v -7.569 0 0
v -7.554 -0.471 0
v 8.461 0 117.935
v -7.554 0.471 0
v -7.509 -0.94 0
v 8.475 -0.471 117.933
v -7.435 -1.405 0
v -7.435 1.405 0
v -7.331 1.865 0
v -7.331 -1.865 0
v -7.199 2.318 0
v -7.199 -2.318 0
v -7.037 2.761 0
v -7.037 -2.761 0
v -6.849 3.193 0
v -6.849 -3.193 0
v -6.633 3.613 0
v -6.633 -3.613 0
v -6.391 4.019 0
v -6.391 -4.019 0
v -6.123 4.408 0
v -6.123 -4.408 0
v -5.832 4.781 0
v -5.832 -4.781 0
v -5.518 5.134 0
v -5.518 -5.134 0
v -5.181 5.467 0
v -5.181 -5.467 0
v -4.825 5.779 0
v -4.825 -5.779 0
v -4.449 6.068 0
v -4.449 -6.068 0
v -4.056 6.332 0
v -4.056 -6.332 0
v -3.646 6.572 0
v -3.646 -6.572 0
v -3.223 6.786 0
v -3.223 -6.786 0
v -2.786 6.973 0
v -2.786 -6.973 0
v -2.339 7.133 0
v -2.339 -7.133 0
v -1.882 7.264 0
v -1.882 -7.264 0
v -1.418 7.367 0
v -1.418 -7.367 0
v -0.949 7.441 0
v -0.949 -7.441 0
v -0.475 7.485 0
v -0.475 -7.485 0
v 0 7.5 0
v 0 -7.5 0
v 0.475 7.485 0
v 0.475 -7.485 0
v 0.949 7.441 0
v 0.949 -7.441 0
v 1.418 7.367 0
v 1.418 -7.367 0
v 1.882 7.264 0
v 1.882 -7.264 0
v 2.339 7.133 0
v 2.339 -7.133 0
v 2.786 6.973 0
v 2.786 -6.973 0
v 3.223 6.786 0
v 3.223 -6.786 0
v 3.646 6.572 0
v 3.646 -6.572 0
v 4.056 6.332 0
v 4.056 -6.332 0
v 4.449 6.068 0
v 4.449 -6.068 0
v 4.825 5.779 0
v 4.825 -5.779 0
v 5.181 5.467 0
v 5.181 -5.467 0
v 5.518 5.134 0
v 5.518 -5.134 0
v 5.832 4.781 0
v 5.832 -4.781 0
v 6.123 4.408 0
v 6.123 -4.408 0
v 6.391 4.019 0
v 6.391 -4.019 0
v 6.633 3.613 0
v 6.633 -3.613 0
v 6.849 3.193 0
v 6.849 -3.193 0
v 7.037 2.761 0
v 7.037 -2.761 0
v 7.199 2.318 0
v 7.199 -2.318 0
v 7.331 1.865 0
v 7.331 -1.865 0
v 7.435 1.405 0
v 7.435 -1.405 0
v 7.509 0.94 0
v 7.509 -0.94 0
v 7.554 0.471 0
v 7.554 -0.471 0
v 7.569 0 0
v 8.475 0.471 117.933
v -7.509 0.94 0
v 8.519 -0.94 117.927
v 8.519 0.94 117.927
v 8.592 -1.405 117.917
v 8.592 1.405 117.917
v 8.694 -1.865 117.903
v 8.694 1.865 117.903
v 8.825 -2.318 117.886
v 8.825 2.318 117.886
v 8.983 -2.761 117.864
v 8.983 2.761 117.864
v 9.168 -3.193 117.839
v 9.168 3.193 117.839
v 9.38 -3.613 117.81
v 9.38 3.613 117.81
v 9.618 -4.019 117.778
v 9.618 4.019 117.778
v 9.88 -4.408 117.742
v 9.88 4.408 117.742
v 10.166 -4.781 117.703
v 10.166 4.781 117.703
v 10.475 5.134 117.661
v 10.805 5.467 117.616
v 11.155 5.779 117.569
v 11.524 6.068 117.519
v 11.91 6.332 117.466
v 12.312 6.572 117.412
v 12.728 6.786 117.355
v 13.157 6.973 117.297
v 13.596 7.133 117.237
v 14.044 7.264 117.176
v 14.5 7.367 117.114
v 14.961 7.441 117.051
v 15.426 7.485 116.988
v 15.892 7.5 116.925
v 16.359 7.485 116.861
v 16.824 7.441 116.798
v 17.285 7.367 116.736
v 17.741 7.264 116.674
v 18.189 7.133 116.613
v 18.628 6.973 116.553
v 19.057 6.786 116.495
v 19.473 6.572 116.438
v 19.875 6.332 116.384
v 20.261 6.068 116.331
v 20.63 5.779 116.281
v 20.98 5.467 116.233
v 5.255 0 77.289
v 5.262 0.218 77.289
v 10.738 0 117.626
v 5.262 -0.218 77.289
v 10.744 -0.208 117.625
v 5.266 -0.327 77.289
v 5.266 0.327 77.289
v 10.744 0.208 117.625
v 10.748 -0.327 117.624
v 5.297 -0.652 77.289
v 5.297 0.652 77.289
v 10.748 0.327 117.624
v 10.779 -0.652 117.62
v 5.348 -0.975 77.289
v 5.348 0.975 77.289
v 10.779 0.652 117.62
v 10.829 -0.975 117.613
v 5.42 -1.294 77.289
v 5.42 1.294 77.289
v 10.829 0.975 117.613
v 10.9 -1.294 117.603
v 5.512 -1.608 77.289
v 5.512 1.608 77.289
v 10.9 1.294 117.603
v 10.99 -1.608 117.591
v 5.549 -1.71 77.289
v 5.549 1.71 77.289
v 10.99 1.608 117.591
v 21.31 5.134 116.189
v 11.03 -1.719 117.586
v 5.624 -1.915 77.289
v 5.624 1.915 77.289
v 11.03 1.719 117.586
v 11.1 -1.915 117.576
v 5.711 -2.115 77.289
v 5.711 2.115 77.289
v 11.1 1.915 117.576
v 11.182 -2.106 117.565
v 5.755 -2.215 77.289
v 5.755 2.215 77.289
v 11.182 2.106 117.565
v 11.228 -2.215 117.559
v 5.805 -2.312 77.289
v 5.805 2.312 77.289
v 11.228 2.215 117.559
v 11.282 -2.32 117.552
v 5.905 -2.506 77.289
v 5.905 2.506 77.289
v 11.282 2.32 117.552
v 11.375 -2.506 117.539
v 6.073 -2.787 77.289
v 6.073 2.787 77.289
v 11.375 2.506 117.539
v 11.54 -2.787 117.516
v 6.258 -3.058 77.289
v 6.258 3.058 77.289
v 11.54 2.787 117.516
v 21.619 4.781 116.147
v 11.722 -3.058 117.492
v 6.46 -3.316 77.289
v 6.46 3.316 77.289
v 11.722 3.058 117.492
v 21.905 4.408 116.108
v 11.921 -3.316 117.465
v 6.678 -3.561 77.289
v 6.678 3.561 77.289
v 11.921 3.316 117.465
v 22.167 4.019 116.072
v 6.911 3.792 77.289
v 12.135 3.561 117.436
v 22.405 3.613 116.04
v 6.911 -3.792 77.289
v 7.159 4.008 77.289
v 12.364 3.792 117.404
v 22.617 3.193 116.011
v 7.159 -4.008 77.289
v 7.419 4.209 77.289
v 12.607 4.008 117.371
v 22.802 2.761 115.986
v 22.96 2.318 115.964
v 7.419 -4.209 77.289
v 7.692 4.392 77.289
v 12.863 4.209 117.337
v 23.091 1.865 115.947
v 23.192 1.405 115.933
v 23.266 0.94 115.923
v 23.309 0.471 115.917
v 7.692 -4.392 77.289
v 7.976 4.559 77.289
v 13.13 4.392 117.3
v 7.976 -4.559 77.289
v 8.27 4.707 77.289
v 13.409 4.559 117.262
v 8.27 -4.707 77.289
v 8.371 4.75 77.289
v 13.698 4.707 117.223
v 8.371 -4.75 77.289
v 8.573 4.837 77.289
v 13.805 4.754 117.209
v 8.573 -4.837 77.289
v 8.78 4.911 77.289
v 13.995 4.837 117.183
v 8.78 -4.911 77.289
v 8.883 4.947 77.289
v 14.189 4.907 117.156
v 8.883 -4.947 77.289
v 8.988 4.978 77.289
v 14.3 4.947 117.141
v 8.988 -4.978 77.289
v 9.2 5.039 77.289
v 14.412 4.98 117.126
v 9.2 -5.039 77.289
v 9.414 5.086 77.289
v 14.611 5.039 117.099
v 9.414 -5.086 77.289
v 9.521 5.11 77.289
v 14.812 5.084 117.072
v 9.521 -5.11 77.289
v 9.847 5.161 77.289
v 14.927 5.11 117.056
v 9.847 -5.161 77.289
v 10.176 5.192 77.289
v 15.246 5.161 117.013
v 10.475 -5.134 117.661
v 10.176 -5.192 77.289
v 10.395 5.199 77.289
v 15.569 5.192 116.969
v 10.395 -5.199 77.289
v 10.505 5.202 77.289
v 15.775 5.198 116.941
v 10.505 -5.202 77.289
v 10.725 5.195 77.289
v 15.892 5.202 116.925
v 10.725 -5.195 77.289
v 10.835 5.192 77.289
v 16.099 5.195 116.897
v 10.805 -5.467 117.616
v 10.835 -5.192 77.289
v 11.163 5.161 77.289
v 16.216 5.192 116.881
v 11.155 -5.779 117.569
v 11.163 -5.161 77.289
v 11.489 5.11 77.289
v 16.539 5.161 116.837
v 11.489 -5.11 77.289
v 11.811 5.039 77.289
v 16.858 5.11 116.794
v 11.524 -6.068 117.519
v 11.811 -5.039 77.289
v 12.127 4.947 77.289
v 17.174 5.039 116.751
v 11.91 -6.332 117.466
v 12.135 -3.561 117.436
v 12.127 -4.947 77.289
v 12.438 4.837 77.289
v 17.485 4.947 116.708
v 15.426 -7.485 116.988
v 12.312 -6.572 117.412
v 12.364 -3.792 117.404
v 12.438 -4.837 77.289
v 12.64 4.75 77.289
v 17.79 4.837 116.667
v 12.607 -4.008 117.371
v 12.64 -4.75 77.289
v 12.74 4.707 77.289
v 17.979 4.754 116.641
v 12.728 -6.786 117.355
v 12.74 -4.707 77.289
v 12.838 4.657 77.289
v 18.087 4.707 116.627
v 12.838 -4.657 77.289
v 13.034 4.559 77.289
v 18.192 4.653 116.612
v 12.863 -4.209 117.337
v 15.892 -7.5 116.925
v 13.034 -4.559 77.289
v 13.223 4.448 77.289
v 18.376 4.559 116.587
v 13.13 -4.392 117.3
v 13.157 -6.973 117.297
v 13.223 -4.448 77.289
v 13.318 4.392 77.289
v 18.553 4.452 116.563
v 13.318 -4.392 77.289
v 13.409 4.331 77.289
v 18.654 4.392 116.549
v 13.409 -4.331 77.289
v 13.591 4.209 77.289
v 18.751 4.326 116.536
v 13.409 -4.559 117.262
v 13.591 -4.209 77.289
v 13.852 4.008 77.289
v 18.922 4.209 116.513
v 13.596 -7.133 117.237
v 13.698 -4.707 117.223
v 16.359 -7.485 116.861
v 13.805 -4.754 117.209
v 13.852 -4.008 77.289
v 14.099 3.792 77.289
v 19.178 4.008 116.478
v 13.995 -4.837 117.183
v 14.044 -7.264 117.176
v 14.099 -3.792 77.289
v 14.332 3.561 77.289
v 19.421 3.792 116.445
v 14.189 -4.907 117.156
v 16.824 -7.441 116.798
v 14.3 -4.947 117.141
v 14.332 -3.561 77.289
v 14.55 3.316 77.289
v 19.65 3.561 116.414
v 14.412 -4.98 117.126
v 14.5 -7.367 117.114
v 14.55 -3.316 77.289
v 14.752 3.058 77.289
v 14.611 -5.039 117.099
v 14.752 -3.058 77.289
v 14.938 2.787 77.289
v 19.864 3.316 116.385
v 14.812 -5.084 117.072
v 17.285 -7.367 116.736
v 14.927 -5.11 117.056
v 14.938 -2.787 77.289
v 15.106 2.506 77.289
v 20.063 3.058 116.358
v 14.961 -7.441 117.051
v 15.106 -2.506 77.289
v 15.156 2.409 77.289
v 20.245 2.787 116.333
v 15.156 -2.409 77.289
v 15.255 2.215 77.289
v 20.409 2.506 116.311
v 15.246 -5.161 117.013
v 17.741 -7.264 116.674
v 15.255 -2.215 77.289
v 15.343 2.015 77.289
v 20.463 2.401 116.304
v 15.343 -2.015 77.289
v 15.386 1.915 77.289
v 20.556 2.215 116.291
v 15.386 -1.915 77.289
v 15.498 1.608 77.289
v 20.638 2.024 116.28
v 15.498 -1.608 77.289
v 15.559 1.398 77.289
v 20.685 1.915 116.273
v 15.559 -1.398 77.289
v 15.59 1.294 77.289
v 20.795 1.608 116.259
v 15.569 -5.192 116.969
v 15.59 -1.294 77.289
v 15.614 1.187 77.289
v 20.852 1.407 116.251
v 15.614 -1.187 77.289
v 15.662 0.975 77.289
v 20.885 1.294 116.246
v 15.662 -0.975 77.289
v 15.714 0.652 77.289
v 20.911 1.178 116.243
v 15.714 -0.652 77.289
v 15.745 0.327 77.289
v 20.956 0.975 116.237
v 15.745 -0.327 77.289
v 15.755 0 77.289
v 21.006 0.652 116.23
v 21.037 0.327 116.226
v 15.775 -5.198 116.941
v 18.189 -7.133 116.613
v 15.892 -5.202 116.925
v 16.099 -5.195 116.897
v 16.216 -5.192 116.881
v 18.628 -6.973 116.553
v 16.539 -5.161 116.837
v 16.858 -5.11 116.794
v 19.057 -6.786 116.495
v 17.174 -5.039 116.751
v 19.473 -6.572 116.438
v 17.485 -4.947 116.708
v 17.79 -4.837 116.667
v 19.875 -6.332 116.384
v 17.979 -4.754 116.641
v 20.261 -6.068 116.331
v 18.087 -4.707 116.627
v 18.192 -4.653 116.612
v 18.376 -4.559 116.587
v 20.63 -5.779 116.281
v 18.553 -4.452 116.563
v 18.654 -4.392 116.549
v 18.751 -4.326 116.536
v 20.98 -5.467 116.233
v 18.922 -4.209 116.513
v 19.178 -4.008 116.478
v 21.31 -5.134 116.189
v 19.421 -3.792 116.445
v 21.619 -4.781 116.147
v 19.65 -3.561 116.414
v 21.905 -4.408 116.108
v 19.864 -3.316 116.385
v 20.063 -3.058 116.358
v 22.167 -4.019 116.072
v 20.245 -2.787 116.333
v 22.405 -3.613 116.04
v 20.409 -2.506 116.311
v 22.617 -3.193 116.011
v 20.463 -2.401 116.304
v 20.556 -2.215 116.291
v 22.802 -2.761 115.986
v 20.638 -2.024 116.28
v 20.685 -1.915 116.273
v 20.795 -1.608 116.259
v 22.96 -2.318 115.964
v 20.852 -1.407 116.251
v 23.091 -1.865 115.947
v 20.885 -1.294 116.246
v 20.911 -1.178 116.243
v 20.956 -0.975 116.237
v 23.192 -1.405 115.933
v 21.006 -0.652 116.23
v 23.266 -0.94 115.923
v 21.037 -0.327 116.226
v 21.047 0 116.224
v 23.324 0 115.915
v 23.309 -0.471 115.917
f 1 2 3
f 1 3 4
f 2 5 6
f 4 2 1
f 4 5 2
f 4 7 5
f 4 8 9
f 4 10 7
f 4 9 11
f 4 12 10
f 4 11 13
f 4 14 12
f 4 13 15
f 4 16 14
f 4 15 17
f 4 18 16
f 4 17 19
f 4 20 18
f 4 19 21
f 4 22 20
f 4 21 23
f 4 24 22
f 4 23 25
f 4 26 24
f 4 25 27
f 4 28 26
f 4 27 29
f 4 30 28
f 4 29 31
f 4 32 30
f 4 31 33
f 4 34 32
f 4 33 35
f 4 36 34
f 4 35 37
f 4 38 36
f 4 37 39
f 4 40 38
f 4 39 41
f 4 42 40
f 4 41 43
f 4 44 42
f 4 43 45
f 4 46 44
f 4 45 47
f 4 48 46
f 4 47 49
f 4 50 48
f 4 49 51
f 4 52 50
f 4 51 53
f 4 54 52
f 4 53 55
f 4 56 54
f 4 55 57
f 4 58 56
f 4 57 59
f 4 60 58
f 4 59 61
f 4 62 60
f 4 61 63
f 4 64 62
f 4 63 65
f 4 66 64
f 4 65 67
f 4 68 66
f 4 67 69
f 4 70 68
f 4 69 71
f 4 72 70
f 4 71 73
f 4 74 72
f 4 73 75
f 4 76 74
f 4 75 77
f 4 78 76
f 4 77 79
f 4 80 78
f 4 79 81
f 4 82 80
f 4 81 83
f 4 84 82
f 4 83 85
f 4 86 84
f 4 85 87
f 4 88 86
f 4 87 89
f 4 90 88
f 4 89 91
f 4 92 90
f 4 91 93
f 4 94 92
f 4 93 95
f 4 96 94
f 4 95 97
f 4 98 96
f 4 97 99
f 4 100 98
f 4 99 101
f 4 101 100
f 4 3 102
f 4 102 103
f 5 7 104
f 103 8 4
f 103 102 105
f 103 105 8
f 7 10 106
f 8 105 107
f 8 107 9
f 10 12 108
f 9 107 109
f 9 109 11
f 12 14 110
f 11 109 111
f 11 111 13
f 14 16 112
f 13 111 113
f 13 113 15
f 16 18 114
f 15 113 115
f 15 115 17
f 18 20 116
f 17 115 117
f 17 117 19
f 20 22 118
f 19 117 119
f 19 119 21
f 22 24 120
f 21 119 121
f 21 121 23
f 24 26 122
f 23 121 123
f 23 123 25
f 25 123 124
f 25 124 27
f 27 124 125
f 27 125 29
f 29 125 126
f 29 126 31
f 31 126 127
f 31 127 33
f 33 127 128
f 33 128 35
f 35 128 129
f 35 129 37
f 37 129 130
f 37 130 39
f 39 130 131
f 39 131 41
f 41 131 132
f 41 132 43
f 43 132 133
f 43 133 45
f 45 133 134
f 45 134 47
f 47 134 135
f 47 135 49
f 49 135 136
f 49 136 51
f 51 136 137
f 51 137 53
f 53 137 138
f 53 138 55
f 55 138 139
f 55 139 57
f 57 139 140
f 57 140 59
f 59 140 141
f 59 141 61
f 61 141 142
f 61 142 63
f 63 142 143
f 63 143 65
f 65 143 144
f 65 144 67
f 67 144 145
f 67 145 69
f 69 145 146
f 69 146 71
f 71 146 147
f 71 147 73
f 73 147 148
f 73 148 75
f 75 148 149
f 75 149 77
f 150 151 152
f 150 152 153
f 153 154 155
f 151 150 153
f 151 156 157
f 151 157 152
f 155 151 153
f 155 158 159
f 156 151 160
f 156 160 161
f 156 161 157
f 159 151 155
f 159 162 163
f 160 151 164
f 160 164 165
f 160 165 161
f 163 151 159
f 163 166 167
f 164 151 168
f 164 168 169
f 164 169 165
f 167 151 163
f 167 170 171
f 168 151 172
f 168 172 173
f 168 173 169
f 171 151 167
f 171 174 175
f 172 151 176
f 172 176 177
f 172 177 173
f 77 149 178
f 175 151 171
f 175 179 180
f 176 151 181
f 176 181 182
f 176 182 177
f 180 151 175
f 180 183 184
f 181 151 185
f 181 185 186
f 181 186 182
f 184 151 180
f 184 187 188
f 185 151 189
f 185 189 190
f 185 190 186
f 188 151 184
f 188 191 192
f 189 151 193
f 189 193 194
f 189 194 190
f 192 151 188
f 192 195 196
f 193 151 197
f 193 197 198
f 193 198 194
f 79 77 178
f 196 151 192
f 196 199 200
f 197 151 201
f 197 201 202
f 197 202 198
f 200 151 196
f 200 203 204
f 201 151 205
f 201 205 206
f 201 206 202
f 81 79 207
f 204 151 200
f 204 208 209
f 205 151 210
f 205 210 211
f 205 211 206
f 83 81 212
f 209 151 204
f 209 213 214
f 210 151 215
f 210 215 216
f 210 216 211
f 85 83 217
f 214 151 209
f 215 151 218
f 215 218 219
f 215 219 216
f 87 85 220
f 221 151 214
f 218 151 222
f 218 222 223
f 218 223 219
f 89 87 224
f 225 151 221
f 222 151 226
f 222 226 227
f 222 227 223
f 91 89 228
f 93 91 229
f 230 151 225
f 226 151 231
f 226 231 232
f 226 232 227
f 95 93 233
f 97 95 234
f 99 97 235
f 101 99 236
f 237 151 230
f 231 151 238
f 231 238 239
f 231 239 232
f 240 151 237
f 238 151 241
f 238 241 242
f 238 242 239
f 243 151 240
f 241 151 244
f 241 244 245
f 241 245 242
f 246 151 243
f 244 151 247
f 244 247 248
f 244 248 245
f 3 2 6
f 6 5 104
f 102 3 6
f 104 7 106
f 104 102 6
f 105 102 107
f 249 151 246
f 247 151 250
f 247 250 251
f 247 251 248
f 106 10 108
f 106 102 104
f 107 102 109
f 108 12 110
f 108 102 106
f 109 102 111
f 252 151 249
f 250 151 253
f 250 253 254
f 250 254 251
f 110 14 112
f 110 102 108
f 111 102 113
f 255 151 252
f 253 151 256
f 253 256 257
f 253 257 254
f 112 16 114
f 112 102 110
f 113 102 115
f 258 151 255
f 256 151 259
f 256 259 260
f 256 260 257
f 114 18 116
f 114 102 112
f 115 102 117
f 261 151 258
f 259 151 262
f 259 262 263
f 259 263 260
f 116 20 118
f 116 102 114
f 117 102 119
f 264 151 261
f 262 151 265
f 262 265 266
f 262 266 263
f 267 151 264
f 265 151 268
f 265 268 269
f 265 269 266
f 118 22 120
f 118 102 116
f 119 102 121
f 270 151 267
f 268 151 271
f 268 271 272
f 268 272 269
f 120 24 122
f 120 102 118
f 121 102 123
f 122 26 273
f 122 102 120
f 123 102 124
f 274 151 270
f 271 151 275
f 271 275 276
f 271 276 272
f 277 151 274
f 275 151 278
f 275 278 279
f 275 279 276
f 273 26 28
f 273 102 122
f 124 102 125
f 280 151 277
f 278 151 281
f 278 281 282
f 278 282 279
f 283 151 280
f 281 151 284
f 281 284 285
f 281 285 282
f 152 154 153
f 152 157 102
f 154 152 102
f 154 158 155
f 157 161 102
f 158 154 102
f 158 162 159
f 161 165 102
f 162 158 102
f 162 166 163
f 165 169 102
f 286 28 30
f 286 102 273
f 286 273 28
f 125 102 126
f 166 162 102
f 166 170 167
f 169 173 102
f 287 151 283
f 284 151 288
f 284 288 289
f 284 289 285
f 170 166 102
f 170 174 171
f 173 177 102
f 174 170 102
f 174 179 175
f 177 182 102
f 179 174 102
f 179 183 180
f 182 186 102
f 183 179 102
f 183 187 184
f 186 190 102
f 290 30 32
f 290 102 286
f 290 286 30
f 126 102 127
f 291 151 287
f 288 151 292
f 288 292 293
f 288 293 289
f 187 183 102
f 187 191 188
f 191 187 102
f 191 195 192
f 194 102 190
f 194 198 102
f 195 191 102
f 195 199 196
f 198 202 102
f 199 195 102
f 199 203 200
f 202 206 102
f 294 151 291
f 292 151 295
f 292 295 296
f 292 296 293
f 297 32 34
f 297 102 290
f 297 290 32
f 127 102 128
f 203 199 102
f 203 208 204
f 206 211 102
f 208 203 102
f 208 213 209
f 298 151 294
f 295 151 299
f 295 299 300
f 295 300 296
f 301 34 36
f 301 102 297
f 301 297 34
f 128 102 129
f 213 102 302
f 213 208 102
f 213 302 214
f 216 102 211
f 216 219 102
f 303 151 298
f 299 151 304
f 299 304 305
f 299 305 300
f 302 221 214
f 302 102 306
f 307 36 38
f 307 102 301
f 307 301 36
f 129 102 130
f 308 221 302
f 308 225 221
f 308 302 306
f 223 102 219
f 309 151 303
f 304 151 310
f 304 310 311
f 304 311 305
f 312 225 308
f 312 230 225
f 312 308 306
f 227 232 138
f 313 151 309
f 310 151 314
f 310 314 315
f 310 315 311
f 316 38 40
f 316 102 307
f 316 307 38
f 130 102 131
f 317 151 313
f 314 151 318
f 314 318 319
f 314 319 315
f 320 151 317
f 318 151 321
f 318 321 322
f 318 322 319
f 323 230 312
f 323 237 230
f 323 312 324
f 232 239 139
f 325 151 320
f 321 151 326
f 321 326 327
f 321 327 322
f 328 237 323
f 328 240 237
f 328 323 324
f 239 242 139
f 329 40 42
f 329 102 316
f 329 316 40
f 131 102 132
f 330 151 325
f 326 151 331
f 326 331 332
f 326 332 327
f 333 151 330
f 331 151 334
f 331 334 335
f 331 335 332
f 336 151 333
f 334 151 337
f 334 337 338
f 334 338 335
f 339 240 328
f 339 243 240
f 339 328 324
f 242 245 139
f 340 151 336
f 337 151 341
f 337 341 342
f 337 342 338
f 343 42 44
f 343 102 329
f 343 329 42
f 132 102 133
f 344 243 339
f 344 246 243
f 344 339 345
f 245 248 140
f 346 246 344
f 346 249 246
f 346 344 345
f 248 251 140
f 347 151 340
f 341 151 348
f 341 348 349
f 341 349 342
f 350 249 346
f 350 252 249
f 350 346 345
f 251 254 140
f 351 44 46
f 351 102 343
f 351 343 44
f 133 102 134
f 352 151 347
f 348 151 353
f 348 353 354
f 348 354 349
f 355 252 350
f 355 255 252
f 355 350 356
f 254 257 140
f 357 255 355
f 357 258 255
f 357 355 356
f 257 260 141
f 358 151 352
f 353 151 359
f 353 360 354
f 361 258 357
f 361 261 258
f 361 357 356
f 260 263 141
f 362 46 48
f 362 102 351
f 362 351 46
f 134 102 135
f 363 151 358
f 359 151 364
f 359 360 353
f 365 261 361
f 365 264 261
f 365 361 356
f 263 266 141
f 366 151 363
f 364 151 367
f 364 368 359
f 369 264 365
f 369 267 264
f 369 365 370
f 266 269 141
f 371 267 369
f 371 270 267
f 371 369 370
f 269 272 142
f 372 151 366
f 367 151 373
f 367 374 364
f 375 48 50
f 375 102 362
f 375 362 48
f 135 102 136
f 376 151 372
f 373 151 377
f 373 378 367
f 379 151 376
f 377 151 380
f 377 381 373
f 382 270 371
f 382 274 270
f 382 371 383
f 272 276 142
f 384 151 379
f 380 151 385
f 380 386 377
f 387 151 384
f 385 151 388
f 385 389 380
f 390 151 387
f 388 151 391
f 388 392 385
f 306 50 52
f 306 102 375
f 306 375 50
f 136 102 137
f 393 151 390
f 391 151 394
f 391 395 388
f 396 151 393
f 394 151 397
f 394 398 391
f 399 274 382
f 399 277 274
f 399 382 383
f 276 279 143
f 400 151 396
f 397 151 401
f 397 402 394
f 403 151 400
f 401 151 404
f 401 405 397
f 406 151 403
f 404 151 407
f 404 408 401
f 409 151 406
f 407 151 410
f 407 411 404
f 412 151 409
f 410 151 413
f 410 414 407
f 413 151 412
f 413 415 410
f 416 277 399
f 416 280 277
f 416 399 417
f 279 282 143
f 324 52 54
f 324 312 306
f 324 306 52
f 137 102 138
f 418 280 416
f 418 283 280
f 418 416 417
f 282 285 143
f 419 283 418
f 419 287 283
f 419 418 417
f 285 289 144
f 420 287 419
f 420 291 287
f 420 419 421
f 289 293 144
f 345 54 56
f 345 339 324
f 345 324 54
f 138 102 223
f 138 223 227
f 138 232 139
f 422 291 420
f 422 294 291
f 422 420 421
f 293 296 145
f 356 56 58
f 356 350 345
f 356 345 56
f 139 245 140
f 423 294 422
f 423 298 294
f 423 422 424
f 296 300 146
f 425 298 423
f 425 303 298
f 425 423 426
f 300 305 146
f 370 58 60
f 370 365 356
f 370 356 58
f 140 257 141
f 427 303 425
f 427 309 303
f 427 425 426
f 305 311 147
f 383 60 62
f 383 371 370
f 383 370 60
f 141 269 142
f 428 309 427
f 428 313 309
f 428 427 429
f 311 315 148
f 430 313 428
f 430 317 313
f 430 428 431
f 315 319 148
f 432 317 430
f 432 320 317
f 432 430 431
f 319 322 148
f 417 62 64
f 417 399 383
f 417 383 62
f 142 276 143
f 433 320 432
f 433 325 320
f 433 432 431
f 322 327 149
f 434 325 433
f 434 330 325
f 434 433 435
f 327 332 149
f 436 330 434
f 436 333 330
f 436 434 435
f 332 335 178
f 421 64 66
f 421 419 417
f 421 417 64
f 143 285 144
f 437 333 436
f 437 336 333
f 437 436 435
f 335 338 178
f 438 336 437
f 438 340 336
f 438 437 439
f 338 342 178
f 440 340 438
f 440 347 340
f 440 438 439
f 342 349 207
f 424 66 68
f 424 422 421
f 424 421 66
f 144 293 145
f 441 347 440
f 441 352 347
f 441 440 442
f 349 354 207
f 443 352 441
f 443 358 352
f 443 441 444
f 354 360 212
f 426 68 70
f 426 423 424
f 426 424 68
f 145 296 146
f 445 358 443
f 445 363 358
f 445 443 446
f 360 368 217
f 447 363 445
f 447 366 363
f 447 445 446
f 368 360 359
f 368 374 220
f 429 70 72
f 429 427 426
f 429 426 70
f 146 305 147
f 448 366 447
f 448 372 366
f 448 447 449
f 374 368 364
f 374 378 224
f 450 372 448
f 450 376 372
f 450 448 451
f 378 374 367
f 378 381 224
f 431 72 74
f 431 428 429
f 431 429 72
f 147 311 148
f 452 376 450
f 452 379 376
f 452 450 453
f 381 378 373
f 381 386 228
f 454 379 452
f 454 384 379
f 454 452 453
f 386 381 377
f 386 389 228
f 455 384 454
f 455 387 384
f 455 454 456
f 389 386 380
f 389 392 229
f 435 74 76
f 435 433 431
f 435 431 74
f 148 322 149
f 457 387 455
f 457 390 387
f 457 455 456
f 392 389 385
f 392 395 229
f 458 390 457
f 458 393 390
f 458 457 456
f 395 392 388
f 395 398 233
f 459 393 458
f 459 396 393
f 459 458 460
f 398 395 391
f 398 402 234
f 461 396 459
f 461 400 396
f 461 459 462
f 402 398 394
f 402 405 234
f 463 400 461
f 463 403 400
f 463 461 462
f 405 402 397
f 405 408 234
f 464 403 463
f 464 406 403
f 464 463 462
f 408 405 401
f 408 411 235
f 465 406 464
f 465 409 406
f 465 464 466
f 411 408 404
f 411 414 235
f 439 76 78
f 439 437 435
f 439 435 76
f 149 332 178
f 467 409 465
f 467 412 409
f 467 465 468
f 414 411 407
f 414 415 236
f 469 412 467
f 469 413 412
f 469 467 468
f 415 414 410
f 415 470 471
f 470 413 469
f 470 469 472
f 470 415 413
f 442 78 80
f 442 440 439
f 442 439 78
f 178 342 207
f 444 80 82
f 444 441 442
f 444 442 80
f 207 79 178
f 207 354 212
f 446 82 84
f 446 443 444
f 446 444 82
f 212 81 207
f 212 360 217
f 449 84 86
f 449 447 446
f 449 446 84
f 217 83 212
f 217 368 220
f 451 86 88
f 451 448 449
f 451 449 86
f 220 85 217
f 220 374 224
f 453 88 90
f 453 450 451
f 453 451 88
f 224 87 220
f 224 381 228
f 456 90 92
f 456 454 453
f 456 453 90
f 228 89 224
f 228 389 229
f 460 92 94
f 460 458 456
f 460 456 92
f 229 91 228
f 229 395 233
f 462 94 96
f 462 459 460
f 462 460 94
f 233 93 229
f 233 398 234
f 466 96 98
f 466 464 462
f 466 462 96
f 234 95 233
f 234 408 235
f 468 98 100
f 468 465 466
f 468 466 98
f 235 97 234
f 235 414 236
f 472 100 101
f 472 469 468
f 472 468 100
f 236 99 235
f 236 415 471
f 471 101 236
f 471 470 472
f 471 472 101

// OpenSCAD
zz=445.90;
xz=450;
xx=cos(asin(zz/xz))*xz;
dia=10.2;
bignum=max(zz,xz);

angle=90-asin(zz/xz);

$fn=100;

difference() {
  rotate(angle,[0,1,0]) translate([0,0,78]) difference() {
    translate([0,0,-80]) cylinder(h=120,d=15);
    scale([1.02,1.02,1.02]) rotate(-angle,[0,1,0]) leg();
  }
  translate([0,0,-bignum/2]) cube([bignum,bignum,bignum],center=true);
}

module leg() {
  difference() {
    translate([-xx,0,-zz]) rotate(angle,[0,1,0]) linear_extrude(xz*3) circle(d=dia);
    translate([0,0,-bignum/2]) cube([bignum,bignum,bignum],center=true);
    translate([0,0,bignum/2+zz]) cube([bignum,bignum,bignum],center=true);
  }
}
